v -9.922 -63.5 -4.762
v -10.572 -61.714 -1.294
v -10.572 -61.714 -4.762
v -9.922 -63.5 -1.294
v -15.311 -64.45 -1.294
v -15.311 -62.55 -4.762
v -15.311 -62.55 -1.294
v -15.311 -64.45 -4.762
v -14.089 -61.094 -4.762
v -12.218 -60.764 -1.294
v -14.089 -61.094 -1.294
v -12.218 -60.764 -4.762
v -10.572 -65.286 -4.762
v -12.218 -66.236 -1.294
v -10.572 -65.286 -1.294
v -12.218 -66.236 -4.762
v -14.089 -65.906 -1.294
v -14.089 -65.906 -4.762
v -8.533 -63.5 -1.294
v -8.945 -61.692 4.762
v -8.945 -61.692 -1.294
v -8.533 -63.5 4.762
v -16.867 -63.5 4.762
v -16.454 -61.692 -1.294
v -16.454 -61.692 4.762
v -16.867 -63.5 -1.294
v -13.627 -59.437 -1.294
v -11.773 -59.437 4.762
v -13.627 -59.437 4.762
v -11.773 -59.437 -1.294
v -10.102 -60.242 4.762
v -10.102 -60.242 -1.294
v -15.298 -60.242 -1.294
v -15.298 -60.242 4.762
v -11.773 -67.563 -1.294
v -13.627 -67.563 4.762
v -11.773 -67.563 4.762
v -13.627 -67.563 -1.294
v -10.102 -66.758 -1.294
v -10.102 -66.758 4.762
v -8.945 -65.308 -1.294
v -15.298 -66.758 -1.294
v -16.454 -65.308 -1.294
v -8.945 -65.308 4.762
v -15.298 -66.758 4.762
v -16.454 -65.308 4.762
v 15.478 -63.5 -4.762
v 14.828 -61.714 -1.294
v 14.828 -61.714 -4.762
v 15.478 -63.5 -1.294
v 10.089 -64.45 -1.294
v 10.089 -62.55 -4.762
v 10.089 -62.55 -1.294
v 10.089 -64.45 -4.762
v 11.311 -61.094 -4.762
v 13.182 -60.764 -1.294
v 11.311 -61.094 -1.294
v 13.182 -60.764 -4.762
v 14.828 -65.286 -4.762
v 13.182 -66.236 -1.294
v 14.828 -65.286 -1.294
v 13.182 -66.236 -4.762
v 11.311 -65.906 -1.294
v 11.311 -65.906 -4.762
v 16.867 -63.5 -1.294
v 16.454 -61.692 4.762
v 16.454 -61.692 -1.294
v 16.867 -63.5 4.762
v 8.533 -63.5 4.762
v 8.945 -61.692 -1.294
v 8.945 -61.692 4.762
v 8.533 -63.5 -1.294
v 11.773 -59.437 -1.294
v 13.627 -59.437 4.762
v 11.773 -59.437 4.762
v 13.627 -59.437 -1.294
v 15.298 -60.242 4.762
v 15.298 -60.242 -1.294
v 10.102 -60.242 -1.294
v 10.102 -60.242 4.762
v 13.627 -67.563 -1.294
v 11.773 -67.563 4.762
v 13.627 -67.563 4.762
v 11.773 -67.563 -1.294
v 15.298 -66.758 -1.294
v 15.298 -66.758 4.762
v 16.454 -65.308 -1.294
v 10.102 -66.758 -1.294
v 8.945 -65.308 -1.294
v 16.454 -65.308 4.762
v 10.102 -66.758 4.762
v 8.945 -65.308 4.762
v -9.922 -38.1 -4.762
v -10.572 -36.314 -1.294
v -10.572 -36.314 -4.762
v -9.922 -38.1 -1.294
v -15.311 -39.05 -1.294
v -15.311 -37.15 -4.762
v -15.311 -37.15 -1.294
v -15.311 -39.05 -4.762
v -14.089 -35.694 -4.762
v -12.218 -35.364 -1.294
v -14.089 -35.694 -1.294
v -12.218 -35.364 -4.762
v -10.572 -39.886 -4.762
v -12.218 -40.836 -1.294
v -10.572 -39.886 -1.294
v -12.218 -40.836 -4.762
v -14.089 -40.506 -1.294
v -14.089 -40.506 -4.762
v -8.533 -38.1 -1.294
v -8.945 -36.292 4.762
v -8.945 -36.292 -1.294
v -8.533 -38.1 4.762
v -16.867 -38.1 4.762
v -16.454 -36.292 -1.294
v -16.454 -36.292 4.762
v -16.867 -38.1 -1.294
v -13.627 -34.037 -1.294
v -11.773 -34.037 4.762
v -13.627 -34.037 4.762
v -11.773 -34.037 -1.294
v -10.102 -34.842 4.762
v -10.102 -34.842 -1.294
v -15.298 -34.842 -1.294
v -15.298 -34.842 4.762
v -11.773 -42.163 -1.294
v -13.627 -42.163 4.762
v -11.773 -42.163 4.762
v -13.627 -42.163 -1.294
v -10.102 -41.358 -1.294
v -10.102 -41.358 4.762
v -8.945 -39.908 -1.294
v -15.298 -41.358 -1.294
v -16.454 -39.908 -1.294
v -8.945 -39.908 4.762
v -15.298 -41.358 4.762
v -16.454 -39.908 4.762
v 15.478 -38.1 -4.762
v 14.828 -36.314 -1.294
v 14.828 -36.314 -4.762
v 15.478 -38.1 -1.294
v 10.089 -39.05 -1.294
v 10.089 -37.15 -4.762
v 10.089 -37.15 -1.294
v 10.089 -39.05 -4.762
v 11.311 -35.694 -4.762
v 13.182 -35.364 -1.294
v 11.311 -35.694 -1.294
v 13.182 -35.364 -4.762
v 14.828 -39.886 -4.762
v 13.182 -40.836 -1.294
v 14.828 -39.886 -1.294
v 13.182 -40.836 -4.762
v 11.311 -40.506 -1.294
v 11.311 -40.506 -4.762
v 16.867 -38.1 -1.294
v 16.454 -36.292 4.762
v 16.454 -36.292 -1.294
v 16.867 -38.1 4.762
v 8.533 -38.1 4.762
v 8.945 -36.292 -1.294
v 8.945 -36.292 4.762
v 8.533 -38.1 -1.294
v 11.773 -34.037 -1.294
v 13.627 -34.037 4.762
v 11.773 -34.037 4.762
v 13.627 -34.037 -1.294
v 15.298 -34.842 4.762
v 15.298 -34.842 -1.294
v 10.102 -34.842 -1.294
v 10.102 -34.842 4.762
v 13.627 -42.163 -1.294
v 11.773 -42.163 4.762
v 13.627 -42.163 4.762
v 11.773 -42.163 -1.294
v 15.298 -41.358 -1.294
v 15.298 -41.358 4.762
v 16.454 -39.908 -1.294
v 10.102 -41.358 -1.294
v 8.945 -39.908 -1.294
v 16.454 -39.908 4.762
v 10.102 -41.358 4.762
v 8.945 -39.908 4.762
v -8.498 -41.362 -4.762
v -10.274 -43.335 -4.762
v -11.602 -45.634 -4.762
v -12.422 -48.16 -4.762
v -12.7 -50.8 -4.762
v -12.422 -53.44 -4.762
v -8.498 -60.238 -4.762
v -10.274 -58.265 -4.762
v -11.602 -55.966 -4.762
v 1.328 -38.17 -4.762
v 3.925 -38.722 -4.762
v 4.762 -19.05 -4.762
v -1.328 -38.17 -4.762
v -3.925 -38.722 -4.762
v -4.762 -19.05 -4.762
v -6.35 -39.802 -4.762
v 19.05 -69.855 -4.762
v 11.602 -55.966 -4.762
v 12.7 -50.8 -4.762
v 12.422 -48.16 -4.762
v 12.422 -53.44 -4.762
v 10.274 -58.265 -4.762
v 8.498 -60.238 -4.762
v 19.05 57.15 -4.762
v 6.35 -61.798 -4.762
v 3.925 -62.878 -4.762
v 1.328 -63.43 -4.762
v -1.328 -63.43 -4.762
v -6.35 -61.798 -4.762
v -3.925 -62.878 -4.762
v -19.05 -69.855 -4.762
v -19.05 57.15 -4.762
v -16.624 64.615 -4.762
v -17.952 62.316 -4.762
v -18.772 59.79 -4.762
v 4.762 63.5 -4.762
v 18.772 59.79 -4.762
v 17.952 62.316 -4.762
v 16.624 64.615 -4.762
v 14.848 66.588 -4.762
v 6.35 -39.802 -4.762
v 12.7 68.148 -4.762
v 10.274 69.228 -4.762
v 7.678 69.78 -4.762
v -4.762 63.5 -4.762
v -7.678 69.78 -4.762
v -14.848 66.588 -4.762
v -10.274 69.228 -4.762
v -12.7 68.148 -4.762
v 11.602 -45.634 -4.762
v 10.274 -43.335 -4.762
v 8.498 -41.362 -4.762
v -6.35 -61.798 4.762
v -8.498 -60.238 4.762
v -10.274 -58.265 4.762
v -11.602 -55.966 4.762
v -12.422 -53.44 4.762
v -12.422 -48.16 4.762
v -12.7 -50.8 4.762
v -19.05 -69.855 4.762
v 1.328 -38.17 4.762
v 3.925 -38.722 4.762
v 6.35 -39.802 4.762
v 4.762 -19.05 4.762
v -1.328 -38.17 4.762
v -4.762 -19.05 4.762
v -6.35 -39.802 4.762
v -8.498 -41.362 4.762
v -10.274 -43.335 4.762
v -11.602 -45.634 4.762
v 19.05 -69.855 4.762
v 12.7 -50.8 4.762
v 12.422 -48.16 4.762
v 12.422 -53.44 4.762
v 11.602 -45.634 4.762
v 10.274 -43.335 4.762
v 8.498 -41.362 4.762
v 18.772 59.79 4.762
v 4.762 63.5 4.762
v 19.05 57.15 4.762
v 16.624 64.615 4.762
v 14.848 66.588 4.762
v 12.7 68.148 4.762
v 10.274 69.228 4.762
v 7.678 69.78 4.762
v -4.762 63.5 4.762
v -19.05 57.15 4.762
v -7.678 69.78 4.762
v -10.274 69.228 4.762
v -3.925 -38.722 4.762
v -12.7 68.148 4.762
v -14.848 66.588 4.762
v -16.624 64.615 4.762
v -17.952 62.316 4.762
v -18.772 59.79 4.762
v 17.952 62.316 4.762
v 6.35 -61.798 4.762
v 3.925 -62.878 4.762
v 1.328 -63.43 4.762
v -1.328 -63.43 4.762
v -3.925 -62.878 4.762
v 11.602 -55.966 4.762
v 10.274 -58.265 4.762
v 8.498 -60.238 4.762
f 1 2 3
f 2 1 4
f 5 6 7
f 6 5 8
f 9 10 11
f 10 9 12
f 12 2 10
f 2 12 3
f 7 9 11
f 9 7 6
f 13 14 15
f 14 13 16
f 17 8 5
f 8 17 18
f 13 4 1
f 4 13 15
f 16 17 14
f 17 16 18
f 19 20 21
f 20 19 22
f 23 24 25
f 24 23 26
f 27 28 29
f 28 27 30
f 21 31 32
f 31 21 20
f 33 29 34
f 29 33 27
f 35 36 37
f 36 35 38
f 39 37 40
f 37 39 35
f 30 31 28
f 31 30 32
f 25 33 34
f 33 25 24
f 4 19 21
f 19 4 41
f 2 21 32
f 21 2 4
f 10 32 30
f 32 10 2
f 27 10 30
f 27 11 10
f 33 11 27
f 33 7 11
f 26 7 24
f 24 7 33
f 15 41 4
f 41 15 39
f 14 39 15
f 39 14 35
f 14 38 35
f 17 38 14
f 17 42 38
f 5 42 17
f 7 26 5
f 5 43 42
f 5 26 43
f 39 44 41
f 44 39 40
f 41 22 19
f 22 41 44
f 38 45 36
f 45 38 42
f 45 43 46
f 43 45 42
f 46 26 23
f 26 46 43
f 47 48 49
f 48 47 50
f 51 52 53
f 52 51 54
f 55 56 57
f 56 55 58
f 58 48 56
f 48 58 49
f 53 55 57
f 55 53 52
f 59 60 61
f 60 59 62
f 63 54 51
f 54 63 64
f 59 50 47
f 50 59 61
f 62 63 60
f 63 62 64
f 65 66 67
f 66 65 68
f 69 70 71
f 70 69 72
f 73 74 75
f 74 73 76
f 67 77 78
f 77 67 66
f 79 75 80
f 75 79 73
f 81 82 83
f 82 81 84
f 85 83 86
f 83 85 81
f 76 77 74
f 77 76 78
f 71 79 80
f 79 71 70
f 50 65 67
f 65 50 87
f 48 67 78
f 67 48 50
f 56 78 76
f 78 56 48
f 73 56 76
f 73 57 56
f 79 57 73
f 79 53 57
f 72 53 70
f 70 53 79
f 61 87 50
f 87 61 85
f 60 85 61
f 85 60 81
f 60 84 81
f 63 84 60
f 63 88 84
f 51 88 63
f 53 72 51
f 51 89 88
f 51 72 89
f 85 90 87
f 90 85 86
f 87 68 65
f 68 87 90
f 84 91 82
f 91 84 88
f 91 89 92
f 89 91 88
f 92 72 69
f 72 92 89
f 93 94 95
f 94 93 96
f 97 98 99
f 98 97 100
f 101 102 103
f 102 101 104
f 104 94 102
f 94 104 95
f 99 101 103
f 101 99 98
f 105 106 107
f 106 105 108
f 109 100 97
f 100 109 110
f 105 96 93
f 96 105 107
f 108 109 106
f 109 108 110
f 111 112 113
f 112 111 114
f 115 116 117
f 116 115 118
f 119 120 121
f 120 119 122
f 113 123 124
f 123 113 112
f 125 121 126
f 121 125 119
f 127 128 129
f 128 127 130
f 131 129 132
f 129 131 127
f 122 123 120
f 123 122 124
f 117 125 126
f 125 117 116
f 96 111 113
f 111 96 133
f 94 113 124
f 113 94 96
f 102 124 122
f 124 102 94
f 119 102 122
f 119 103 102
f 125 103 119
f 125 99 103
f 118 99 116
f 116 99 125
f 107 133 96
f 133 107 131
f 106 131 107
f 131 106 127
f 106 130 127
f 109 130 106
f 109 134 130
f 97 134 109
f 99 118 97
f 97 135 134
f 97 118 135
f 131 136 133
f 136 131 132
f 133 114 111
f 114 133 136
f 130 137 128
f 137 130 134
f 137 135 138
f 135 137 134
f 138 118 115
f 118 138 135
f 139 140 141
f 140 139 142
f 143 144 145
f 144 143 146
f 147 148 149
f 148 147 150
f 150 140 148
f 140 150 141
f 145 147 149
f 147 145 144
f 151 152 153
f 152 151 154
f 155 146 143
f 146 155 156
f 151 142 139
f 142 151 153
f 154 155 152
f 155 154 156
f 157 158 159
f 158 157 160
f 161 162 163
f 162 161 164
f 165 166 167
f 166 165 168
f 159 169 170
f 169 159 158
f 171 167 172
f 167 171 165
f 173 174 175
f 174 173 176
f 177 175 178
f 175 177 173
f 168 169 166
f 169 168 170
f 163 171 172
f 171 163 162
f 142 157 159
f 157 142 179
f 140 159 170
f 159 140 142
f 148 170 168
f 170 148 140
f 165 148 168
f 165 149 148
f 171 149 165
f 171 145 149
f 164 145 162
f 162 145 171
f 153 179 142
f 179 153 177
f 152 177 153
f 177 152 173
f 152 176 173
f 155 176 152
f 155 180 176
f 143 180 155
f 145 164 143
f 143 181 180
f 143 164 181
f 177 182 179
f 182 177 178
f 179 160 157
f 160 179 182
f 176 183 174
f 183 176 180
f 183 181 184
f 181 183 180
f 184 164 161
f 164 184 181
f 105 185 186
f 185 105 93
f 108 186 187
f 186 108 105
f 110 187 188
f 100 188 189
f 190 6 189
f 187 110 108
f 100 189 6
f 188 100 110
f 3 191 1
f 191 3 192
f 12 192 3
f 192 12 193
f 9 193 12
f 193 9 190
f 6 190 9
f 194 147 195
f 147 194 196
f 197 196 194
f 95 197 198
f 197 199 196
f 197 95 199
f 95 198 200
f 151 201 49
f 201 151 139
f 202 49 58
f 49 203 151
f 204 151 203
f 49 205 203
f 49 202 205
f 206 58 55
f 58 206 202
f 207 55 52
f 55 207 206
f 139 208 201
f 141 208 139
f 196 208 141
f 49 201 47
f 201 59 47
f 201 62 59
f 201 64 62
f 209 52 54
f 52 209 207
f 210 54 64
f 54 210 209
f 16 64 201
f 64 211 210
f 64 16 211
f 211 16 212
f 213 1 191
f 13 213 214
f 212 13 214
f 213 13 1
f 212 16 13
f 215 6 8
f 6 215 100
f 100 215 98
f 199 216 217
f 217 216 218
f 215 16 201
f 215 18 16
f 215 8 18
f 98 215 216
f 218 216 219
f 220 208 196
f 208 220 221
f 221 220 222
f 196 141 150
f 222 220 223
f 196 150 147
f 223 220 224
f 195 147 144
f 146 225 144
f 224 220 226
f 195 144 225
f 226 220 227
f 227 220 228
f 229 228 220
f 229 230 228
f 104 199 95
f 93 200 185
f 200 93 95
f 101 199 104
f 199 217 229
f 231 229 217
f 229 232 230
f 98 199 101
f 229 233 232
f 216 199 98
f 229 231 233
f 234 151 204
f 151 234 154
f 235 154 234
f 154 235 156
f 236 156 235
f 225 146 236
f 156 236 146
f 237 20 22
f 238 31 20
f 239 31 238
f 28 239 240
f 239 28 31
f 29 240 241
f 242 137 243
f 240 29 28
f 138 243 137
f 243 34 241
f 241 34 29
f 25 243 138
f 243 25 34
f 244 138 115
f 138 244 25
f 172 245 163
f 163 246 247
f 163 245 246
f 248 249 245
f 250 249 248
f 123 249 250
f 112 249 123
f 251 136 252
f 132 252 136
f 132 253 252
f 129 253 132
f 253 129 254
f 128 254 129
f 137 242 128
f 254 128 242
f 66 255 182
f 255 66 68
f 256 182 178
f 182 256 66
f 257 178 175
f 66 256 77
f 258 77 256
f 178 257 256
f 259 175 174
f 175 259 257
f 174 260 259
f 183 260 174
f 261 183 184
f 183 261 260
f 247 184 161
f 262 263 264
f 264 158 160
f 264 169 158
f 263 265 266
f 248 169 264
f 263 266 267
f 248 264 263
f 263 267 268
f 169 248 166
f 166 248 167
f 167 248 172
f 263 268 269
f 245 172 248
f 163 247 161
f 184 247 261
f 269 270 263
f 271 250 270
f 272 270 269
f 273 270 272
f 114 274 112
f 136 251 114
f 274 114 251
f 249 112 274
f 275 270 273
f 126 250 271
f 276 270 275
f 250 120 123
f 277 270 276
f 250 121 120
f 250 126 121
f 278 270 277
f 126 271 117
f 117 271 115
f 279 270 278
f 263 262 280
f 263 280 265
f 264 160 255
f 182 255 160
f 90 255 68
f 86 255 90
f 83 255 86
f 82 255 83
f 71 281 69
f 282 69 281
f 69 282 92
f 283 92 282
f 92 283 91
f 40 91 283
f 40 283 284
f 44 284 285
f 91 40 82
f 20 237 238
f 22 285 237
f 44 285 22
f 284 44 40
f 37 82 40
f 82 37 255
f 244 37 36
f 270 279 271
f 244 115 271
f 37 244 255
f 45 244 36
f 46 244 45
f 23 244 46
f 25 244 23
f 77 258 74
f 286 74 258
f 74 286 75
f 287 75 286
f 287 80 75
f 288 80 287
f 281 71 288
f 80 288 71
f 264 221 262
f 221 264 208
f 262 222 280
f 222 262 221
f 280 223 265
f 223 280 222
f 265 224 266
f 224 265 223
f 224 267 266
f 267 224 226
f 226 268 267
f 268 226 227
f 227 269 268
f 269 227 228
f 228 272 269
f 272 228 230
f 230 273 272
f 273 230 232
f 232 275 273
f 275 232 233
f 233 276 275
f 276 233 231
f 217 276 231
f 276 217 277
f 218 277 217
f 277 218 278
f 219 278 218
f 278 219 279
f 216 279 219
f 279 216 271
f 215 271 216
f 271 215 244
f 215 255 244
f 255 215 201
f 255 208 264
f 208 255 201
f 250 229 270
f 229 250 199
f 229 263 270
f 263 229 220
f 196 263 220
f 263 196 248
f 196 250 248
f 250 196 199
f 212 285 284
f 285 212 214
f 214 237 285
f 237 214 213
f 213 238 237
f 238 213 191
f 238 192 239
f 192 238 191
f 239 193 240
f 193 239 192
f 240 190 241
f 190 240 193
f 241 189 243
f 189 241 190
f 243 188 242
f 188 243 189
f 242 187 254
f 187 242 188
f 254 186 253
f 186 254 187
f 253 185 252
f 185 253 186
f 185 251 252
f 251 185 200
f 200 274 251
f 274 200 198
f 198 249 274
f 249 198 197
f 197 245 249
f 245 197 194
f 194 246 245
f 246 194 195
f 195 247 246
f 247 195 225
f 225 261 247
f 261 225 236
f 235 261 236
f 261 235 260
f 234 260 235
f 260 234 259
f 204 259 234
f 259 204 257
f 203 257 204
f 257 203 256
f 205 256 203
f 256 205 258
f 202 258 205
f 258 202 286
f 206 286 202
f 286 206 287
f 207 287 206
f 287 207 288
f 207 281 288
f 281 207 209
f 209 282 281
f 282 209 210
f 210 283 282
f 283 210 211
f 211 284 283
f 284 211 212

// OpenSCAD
inch=25.4;

module index_pin_guide_slide(radius=inch/2,
			     width=(1+1/2)*inch,
			     length=(5+1/2)*inch,
			     thickness=(3/8)*inch,

			     slotLength=(3+1/4)*inch,
			     slotWidth=0.375*inch,
			     slotPosition=inch/4,

			     bossD=inch,
			     bossPosition=(3/4)*inch,

			     boltD=(7/32)*inch,
			     cboreD=(21/64)*inch,
			     cboreDepth=(7/32)*inch,
			     boltSpacing=inch,
			     boltPosition=inch/2) {
     difference() {
	  linear_extrude(height=thickness, center=true)
	       difference() {
	       hull() {
		    for (x=[-1,1]*(width/2-2*radius)) {
			 translate([x,length/2-radius]) {
			      circle(r=radius);
			 }
		    }
		    translate([0,-length/2]) {
			 square([width, 0.01], center=true);
		    }
	       }
	       
	       translate([0,-slotLength/2+length/2-slotPosition])
		    square([slotWidth, slotLength], center=true);
	       
	       translate([0,-length/2+bossPosition])
		    circle(d=bossD);
	       
	  }

	  for(y=[-1,1]*boltSpacing/2) {
	       for(x=[-1,1]*boltSpacing/2) {
		    translate([x,-length/2+bossPosition+y,0]) union() {
			 cylinder(d=boltD, h=thickness*2, center=true);
			 translate([0,0,-cboreDepth/2+thickness/2]) {
			      cylinder(d=cboreD, h=cboreDepth+1, center=true);
			 }
		    }
	       }
	  }
	}
}

index_pin_guide_slide();
